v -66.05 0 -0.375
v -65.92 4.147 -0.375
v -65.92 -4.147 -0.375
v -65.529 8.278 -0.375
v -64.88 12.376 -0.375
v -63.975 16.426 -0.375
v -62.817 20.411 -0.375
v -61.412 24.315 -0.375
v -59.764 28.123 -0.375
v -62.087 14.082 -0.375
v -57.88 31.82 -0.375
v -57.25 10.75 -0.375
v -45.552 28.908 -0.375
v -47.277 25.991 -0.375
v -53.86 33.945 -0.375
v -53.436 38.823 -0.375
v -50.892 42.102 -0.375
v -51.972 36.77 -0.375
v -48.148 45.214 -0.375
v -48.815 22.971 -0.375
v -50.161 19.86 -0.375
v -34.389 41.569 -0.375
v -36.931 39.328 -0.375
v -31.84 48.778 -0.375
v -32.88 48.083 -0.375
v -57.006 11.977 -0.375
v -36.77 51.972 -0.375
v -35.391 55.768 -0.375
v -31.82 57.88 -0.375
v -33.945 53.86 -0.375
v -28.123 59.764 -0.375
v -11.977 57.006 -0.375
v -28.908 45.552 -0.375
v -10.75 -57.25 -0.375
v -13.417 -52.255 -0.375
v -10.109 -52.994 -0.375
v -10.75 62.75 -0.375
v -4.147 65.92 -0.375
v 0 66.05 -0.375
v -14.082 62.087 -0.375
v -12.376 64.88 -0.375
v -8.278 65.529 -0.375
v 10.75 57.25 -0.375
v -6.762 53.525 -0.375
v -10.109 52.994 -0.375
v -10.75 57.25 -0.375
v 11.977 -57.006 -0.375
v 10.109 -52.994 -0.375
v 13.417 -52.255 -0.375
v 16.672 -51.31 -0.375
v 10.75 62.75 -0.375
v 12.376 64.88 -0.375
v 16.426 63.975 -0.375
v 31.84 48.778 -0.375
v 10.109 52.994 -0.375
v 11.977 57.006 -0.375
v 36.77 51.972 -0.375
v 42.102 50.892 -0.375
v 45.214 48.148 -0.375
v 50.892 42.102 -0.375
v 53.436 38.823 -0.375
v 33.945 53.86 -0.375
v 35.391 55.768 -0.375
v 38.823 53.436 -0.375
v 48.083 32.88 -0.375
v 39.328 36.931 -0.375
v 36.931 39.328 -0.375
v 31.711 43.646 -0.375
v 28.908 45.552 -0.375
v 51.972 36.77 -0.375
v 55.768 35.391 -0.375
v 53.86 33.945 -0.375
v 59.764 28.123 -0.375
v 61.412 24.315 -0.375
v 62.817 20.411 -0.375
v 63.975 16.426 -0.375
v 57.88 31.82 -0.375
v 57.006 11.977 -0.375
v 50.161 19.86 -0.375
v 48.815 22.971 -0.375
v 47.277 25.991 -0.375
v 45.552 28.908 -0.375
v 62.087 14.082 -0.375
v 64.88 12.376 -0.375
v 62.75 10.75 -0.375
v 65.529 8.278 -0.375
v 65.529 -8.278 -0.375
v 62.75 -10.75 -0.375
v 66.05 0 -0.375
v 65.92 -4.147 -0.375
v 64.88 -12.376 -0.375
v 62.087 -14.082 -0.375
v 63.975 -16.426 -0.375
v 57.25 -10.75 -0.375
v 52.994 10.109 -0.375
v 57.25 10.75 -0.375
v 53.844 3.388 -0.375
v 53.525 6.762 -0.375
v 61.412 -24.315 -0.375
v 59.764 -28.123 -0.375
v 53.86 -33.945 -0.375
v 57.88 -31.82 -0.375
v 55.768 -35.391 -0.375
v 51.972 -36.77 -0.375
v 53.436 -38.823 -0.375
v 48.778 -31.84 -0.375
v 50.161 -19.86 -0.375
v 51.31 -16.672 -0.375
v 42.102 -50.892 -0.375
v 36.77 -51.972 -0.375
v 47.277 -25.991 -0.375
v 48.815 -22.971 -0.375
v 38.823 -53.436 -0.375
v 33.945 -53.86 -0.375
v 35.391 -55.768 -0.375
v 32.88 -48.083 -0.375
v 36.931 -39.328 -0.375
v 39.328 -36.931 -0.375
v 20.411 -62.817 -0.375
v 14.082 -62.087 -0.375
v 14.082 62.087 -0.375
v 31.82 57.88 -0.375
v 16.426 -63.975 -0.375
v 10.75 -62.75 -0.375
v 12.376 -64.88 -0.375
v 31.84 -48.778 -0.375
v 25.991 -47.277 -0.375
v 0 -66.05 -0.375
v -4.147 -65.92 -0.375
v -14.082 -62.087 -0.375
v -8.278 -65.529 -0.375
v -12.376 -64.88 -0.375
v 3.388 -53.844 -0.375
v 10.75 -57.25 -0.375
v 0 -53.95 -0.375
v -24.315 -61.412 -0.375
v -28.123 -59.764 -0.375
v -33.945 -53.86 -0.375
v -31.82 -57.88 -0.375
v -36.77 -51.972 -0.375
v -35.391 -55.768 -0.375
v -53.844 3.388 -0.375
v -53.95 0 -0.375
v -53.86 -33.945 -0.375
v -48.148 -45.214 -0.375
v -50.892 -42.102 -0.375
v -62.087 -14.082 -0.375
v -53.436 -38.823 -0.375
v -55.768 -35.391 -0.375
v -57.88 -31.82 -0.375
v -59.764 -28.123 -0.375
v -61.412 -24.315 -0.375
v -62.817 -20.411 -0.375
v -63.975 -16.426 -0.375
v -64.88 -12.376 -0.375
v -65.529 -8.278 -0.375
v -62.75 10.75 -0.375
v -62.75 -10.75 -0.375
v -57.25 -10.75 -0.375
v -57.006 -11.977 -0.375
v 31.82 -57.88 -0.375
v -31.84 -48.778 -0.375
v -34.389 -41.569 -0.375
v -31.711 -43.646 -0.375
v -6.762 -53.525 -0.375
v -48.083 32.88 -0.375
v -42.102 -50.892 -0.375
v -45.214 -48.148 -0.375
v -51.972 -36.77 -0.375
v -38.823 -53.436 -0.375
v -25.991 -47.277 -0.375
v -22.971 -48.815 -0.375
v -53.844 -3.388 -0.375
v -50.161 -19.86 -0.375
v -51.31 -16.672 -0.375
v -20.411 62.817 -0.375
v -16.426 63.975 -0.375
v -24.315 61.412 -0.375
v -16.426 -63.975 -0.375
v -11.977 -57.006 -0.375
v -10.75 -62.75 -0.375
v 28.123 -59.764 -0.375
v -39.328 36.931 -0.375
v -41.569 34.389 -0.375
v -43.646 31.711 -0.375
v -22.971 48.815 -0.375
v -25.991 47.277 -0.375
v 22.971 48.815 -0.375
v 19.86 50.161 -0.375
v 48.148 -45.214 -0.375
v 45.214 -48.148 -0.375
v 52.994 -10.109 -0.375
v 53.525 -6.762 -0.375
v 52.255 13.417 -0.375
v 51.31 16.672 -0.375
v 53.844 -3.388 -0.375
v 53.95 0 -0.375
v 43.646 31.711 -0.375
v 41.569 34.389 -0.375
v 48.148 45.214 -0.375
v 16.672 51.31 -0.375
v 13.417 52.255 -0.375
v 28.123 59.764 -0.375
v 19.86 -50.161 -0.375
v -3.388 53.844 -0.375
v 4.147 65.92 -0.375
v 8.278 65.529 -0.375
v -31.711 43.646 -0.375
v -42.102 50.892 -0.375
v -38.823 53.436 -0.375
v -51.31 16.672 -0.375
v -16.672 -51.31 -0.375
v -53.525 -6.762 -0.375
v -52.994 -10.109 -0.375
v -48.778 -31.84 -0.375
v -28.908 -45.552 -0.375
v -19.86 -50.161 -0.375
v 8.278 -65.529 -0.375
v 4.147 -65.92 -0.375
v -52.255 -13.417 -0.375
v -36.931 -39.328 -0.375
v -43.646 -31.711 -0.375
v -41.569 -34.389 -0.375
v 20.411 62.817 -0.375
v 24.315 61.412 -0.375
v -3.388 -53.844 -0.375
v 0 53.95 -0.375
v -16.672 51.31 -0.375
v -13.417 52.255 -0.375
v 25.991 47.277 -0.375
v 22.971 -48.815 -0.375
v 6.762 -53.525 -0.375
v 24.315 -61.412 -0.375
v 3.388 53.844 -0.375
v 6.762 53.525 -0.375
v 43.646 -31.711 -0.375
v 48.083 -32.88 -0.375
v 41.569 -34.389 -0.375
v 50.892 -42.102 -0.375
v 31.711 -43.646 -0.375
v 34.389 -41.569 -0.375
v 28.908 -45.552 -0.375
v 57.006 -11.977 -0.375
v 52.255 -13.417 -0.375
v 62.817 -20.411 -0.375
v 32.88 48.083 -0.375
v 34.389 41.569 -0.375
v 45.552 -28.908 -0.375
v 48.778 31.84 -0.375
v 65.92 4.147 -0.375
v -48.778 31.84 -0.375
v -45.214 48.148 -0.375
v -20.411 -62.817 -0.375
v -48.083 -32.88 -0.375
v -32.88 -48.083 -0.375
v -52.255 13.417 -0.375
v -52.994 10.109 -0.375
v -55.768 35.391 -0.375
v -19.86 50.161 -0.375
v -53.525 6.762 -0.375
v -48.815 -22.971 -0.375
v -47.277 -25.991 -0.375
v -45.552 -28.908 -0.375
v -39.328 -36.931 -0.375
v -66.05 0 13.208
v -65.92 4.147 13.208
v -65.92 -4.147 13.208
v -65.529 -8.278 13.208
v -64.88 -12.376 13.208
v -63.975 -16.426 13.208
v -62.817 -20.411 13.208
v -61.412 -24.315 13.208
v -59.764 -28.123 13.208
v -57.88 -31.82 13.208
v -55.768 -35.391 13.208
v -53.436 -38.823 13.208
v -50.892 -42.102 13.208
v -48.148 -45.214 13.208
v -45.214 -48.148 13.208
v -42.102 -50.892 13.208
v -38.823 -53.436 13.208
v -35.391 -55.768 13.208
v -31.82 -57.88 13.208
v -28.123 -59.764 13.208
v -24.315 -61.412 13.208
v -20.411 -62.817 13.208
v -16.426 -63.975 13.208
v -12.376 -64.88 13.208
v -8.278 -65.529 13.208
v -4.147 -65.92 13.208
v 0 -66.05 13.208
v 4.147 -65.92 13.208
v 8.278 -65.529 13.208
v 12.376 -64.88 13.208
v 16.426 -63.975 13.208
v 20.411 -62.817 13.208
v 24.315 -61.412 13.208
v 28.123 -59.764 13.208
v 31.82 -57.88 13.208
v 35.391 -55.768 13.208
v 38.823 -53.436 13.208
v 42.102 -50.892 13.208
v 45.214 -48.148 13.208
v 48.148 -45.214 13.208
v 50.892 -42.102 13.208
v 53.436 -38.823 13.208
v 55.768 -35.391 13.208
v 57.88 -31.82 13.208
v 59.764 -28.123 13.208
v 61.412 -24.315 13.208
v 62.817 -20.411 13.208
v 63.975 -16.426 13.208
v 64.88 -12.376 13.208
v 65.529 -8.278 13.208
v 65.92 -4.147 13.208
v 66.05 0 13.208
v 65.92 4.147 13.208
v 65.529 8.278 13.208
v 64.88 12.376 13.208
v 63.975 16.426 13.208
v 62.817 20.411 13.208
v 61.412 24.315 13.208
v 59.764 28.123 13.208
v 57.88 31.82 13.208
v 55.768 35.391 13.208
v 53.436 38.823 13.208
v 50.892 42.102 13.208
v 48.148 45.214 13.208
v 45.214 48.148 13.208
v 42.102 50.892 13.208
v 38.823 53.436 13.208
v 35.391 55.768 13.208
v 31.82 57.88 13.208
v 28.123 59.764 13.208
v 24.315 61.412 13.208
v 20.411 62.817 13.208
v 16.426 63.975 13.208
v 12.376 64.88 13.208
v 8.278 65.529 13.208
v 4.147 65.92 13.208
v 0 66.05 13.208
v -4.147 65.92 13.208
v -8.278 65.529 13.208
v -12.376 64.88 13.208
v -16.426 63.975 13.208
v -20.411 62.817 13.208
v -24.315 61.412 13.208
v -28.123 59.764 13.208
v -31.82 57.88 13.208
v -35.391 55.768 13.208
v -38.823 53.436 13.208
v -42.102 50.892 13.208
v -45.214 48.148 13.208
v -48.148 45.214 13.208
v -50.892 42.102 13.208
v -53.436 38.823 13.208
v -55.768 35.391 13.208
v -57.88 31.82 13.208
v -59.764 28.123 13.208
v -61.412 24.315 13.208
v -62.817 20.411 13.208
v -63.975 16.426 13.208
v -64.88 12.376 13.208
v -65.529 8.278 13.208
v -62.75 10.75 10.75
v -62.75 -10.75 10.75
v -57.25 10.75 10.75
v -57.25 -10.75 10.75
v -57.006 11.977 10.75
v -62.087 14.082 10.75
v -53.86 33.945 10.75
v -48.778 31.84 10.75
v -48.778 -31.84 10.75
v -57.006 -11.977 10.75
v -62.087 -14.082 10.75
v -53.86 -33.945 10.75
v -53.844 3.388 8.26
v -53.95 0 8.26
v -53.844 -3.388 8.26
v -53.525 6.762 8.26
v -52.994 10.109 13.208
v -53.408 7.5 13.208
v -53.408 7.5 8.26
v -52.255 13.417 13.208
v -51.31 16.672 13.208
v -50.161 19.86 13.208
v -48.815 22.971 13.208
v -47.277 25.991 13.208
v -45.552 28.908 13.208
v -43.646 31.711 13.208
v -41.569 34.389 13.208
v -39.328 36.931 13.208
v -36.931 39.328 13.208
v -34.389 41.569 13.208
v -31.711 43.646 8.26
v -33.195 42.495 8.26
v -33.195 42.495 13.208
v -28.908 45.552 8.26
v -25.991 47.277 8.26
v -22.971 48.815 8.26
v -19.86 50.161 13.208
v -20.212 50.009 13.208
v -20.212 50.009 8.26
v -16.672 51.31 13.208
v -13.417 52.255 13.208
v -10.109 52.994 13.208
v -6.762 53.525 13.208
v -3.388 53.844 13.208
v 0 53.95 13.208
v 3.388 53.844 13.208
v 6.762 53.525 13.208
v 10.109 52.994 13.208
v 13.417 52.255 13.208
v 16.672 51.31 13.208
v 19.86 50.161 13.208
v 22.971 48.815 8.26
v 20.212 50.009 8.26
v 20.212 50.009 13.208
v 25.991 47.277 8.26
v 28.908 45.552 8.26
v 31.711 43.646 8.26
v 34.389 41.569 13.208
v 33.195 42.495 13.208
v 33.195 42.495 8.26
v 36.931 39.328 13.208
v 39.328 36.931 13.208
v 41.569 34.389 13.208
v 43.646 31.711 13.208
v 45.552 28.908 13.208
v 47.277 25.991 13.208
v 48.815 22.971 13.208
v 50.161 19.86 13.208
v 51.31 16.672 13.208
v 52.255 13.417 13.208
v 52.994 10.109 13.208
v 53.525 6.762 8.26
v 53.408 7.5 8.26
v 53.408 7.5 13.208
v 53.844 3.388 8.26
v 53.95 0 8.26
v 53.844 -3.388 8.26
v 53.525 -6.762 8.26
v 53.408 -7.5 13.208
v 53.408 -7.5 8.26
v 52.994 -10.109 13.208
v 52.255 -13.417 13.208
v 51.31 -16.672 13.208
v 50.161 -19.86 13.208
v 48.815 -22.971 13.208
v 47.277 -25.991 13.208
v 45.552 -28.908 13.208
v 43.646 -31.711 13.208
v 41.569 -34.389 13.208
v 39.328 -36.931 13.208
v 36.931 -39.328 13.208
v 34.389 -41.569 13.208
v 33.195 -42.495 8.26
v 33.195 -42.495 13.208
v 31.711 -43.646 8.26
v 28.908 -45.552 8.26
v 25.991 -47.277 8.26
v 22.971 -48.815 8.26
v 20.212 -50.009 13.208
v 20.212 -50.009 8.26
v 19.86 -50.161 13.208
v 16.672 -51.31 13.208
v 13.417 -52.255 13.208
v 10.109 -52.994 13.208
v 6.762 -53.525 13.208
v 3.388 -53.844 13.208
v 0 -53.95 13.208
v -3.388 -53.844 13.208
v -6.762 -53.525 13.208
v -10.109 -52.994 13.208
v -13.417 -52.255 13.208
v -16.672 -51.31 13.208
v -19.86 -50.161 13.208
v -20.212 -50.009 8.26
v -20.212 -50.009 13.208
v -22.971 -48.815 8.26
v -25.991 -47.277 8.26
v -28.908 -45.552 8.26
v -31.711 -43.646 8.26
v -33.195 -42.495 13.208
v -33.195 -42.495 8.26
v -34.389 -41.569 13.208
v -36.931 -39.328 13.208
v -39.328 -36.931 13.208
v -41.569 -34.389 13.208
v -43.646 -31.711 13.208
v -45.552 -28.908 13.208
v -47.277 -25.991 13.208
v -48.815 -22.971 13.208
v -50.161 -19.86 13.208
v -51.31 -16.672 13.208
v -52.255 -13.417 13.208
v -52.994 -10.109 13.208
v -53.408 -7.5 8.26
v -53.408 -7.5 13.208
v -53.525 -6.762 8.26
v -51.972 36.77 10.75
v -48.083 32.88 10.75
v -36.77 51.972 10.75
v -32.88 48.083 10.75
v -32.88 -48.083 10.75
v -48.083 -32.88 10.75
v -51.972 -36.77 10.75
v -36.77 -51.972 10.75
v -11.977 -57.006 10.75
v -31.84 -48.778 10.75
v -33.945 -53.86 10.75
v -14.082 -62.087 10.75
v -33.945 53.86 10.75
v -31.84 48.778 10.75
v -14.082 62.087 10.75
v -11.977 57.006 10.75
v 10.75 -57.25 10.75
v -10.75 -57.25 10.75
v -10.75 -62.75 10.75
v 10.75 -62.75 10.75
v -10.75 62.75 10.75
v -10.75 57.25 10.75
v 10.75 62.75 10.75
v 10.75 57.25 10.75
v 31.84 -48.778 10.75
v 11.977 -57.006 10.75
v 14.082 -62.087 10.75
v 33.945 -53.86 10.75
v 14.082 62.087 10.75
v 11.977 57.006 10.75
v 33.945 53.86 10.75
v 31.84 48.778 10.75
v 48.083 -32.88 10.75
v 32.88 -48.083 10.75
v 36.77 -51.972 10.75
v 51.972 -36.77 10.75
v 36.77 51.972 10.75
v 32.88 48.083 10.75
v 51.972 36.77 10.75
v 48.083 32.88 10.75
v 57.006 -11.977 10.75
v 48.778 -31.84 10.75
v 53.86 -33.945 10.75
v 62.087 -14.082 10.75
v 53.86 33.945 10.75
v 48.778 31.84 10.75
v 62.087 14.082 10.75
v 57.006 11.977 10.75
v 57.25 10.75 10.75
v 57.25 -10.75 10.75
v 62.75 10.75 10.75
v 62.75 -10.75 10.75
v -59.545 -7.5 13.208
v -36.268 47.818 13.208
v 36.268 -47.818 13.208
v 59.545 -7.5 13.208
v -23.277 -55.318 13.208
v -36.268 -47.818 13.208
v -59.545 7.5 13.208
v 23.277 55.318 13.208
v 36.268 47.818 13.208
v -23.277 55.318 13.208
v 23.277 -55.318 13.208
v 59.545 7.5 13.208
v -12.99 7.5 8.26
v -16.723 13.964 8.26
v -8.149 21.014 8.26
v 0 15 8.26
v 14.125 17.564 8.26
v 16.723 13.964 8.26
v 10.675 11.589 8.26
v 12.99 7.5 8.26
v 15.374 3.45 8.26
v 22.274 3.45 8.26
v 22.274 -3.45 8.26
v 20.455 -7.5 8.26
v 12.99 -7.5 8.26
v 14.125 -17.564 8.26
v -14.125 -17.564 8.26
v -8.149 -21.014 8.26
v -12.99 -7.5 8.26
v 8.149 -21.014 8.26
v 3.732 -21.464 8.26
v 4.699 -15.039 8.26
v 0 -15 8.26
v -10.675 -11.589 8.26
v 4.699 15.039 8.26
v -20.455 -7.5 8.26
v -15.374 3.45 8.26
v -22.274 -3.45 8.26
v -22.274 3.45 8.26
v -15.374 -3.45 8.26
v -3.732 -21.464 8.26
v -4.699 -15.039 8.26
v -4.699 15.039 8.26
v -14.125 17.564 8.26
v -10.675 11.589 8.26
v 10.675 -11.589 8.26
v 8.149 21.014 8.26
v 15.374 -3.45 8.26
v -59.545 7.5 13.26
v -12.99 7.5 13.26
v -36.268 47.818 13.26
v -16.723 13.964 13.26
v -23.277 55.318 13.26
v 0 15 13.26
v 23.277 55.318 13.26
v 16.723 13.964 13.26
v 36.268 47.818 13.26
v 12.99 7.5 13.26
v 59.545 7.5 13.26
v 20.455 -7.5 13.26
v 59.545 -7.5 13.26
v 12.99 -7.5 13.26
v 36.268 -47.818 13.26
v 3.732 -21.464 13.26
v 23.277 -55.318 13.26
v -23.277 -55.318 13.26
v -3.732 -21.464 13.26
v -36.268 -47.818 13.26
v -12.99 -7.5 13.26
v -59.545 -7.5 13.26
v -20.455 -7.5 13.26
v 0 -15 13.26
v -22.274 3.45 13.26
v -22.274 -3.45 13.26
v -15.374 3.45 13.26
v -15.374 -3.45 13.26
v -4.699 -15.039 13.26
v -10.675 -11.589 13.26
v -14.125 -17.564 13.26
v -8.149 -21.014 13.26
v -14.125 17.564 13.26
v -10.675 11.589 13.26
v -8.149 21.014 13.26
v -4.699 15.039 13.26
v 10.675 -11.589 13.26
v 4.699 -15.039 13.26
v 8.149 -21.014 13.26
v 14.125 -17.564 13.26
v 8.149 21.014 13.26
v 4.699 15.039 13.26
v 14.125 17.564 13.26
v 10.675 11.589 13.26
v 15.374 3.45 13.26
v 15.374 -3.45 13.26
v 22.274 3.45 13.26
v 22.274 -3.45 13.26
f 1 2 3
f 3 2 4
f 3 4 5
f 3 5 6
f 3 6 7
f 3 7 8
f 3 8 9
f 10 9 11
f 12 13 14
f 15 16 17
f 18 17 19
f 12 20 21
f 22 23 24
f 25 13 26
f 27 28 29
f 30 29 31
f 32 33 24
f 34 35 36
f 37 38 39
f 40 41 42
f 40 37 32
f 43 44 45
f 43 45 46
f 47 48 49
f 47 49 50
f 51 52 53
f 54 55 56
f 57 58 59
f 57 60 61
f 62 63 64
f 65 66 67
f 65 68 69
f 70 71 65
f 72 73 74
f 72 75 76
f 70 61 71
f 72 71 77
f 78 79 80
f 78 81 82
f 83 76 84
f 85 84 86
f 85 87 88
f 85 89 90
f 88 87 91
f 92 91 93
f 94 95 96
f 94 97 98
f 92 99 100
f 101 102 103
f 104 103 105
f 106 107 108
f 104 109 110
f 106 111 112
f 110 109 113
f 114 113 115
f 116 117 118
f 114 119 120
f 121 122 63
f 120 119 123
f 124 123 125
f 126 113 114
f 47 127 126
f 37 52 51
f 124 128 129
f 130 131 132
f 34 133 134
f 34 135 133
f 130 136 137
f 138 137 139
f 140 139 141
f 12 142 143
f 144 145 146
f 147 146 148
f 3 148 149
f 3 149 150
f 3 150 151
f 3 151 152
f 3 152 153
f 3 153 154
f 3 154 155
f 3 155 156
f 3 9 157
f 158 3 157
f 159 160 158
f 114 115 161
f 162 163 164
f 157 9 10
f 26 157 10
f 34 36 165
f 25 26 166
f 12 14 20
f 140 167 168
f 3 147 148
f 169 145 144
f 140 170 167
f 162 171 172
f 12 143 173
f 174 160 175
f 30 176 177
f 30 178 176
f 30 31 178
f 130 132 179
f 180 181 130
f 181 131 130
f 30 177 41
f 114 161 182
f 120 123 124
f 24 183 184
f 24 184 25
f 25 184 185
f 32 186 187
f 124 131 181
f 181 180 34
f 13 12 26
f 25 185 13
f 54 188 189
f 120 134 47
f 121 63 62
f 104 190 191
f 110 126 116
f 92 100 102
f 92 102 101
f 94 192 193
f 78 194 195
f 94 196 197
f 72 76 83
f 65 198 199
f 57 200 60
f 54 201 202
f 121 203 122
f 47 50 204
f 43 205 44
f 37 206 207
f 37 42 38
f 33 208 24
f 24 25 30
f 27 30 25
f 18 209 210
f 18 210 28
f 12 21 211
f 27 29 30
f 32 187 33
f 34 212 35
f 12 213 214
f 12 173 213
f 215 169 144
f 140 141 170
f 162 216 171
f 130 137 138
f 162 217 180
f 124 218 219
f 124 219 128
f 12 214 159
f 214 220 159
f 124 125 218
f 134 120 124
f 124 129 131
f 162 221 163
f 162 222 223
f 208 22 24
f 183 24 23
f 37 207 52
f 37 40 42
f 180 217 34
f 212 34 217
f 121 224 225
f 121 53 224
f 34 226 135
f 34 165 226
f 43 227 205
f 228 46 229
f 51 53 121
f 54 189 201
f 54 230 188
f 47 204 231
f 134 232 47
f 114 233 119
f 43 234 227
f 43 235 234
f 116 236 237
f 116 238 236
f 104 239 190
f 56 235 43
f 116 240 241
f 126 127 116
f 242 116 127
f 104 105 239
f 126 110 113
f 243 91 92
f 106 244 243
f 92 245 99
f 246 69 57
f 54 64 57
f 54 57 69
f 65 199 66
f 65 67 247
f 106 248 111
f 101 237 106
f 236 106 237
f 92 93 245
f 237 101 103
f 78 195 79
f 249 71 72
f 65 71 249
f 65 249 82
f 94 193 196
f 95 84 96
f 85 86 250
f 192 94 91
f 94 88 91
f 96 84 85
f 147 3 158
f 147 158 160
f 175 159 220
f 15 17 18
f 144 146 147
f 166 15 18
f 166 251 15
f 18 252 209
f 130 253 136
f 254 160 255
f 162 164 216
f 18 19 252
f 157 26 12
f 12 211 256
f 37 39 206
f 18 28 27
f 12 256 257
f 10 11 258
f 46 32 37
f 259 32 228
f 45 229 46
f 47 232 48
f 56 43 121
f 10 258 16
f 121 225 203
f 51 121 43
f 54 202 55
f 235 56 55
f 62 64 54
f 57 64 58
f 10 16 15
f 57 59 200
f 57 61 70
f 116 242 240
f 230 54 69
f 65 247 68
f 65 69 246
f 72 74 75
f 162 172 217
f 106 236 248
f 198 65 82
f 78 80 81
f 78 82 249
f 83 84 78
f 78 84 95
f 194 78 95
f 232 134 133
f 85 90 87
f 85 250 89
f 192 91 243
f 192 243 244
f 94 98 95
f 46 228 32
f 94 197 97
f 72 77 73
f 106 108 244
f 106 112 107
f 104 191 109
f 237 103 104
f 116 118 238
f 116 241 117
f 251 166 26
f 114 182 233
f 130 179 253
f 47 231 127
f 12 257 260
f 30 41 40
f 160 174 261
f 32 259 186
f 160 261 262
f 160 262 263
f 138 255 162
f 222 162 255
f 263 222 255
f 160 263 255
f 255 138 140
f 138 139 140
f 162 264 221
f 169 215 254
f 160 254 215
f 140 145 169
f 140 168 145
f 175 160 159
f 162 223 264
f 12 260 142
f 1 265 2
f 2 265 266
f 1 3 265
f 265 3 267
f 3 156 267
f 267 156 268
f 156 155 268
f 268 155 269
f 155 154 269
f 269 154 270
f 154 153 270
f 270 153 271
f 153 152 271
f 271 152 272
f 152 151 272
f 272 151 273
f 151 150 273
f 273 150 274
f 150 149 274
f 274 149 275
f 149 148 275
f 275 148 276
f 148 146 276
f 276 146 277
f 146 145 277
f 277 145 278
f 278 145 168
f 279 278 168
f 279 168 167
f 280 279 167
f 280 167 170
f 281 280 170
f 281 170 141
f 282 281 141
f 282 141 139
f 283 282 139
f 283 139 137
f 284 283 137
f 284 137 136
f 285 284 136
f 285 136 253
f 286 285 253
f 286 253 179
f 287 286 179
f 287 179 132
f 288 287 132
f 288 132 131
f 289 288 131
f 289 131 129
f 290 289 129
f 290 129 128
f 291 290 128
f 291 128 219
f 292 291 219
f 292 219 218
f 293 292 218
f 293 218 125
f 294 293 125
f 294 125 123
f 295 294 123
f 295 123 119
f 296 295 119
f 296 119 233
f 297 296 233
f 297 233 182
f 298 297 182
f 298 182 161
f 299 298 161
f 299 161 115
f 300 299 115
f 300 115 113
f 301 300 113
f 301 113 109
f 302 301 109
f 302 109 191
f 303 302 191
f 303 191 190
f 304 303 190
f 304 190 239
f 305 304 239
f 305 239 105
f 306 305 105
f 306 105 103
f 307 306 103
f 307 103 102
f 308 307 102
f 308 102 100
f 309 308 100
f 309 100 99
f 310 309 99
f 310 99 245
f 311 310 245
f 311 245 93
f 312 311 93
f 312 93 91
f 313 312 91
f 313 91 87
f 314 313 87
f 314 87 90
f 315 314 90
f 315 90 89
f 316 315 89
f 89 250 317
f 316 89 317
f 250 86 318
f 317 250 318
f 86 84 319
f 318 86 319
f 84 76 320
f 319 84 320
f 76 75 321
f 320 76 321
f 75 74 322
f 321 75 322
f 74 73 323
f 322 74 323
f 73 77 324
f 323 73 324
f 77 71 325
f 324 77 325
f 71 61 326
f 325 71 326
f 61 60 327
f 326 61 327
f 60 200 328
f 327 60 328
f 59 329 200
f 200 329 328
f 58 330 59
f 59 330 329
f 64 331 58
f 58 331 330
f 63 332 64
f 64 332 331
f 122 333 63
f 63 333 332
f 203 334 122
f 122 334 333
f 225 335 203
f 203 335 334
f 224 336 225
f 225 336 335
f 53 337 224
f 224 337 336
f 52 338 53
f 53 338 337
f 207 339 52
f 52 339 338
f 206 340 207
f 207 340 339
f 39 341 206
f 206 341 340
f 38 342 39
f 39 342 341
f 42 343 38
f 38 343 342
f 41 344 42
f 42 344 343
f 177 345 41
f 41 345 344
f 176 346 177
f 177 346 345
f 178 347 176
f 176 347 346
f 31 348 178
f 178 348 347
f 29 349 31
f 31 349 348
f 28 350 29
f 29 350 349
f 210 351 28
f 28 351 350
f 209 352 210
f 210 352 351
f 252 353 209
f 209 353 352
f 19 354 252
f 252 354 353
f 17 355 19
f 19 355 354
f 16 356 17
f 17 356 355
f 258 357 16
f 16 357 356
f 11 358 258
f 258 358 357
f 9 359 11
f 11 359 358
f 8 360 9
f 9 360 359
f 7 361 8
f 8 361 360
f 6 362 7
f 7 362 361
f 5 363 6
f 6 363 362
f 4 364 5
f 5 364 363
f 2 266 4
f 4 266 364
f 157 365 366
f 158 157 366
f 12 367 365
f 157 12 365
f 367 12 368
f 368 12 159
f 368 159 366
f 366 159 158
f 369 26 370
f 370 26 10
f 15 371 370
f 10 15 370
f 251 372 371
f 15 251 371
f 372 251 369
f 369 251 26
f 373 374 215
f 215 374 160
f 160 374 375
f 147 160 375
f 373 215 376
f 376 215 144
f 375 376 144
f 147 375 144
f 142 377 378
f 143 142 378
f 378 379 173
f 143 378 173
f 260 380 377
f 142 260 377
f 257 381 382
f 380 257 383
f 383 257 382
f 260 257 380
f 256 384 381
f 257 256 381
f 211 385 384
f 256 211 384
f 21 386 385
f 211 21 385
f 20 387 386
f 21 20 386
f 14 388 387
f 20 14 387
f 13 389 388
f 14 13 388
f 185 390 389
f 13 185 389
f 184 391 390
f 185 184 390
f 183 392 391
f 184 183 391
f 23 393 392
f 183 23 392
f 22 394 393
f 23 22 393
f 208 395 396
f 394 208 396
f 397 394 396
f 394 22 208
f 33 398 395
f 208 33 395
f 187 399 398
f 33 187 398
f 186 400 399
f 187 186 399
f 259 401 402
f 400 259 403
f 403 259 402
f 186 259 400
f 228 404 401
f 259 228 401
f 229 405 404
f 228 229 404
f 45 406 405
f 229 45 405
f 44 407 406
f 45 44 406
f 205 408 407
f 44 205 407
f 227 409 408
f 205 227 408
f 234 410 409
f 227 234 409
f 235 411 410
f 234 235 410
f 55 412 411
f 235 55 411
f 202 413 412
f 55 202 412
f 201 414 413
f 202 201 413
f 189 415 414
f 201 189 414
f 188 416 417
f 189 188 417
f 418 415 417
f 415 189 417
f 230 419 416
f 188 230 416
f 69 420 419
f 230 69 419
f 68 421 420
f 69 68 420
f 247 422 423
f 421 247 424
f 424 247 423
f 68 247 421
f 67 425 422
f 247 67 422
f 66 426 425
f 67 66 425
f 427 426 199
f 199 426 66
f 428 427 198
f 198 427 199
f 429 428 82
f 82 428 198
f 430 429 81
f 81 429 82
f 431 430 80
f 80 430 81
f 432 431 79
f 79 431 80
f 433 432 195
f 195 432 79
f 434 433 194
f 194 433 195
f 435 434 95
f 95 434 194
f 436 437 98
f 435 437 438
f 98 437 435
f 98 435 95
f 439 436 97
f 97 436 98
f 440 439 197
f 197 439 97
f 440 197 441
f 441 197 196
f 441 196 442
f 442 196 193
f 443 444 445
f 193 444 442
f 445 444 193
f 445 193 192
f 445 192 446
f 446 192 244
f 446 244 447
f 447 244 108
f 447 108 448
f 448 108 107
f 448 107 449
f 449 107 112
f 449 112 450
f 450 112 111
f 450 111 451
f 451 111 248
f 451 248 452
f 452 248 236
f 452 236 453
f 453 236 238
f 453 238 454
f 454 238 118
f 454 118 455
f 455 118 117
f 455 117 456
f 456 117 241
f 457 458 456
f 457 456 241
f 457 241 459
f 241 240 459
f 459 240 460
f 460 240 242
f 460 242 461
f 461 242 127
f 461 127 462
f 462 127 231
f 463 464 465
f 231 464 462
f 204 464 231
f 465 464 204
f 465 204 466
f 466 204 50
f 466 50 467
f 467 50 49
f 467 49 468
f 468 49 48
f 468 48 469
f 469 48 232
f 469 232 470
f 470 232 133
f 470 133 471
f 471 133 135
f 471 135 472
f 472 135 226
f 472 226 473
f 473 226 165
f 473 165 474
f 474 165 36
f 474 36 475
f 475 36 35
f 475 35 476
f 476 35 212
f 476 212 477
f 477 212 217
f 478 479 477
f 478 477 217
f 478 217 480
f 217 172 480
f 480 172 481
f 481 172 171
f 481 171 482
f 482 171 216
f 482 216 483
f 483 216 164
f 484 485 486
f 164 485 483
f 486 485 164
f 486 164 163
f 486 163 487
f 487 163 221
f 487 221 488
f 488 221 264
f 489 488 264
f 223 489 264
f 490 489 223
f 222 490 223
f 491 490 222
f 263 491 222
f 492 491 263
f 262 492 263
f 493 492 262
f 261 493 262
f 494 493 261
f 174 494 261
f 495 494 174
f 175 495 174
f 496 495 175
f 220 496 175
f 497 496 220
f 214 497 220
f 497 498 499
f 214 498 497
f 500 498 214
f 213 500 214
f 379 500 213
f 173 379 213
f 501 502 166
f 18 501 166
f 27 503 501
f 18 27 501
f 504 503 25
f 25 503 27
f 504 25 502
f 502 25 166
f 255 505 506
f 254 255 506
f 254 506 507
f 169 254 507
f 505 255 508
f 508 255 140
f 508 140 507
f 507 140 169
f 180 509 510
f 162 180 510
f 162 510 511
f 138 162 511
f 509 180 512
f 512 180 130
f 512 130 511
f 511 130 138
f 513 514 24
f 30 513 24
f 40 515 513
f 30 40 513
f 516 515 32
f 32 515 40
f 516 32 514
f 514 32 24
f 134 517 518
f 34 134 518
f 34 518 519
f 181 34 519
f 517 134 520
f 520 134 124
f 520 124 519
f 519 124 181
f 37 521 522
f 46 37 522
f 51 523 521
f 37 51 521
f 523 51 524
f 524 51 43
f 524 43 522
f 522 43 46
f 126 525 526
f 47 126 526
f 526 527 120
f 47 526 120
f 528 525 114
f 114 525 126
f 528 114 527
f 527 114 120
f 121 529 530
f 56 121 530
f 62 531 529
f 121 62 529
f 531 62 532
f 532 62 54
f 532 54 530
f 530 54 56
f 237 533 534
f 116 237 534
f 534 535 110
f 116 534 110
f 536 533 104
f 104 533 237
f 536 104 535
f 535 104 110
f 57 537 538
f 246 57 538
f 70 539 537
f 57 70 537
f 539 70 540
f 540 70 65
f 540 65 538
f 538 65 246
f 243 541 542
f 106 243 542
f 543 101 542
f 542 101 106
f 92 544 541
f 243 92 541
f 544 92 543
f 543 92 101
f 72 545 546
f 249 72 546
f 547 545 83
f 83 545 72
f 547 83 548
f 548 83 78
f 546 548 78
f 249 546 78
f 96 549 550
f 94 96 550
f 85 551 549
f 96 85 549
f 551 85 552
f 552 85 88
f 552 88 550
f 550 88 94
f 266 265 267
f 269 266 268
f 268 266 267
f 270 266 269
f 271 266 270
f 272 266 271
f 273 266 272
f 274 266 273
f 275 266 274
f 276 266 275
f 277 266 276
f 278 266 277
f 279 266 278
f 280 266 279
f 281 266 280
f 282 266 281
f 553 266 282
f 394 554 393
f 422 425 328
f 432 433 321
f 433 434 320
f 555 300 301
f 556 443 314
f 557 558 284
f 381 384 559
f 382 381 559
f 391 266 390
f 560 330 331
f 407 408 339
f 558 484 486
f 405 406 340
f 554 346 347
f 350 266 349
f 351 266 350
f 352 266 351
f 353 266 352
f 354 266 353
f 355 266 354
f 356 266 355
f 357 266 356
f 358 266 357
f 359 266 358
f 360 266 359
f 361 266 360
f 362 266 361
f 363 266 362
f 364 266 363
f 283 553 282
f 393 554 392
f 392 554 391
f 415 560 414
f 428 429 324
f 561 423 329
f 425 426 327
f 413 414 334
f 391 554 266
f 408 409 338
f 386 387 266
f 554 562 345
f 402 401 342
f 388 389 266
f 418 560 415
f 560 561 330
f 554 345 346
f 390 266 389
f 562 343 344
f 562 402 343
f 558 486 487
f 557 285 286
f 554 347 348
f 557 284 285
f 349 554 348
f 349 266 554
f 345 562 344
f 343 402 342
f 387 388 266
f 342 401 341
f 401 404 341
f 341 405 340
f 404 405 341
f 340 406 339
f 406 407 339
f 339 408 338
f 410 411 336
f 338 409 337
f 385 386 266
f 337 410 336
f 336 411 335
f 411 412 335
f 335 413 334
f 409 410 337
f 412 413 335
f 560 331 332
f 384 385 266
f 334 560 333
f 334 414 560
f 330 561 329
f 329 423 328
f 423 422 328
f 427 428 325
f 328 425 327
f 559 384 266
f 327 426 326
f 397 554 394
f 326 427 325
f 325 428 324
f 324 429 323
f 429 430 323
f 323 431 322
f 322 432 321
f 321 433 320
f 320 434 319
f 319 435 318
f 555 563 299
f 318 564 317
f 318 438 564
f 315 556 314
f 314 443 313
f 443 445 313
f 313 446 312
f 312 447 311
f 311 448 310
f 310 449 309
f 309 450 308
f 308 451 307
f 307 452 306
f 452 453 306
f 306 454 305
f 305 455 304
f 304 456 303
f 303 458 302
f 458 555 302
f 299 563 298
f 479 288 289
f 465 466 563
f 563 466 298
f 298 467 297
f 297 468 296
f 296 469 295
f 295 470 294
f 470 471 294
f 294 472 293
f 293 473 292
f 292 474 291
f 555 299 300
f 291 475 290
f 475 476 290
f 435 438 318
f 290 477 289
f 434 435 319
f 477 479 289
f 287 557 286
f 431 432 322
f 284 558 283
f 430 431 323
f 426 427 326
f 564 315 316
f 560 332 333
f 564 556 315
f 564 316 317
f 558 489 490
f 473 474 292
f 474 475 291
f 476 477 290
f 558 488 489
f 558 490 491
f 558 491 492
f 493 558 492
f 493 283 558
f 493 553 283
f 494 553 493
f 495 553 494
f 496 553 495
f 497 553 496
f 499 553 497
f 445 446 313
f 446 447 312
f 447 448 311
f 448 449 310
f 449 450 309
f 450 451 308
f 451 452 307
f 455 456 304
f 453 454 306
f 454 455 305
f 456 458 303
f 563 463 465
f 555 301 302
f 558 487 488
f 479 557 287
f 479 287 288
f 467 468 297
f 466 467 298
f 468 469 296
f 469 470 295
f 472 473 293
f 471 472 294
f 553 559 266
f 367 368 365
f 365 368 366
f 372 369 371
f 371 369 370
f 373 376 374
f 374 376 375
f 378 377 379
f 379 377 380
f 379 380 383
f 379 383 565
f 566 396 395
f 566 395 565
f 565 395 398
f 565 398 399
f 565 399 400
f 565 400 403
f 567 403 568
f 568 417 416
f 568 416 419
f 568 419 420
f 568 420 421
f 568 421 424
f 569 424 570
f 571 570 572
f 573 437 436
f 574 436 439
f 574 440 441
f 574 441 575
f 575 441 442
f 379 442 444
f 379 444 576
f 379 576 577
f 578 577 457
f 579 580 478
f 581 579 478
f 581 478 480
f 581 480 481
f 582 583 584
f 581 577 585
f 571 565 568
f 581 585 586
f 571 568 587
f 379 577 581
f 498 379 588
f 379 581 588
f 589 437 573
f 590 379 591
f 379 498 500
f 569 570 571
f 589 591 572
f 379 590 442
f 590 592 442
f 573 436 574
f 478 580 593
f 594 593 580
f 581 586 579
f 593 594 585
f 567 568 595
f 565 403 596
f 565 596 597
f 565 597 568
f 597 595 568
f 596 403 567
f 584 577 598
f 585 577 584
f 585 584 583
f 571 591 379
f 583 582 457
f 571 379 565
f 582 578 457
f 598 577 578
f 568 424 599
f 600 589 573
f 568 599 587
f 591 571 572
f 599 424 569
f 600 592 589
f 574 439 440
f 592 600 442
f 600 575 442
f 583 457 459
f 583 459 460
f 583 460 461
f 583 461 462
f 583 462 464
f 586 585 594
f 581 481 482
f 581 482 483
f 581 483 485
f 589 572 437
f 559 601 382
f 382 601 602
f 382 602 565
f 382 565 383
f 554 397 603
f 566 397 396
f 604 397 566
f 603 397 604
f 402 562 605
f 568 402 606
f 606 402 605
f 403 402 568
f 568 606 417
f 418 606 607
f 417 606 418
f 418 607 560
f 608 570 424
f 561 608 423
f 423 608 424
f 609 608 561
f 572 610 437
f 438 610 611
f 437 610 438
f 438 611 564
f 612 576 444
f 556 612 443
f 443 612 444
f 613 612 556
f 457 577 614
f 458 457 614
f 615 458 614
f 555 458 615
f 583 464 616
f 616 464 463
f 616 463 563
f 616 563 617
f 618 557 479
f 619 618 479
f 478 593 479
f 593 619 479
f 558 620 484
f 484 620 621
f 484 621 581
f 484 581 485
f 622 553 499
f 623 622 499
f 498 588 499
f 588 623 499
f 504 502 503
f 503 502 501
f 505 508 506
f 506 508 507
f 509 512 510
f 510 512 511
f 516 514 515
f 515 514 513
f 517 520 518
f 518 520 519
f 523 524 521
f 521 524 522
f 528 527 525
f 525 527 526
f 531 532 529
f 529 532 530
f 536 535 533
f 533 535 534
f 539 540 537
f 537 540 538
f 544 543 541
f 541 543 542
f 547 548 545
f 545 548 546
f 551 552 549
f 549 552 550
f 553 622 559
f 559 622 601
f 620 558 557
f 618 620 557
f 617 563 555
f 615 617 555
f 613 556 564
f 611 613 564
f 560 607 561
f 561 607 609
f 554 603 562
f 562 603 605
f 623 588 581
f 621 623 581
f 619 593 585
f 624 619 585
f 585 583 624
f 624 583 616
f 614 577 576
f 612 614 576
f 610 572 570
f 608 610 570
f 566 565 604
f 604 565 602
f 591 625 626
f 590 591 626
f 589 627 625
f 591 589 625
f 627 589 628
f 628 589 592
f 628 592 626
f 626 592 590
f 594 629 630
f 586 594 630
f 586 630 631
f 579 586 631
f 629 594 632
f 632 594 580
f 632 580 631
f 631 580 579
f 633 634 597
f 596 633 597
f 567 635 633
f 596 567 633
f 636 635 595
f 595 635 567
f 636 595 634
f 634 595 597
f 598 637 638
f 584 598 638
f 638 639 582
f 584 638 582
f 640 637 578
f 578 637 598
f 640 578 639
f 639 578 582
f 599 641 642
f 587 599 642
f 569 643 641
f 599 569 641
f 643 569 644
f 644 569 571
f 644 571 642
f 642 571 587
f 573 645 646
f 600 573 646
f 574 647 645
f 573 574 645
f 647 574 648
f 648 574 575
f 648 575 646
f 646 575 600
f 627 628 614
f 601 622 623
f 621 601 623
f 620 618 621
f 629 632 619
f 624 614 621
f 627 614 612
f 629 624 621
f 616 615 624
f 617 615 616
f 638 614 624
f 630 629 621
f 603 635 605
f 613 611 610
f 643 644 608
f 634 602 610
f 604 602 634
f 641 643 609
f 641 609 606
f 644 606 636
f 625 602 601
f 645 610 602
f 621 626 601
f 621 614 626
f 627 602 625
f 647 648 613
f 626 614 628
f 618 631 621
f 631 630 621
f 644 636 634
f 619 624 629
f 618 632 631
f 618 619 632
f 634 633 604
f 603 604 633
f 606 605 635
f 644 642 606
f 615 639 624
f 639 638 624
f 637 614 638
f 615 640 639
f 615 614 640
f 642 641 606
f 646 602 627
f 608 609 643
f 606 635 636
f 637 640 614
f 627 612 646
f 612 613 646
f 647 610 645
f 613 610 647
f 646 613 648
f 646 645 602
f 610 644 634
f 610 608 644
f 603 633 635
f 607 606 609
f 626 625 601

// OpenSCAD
// file: 3dprinter.scad
//BioDeploy SCAD file = 3dprinter.scad


//choose the max specs for your 3d printer
//here we use a replicator2x specs

x_print_max = 25*10;
y_print_max = 15.2*10;
z_print_max = 15.5*10;

//don't forget *10 to put in centimeters
// file: generator_rotor_adapter_hdd.scad
//===============================================//
//===============================================//
//BioDeploy SCAD file = generator_rotor_adapter_hdd.scad//
//                 Start File                    //
//===============================================//
//===============================================//
//-----------------------------------------------//

//===============================================//
//                   variables                   //
//===============================================//
include <generator_variables.scad>
//===============================================//
//               Calls for use                   //
//===============================================//
//use <generator_logo.scad>
//===============================================//
//                    Trees                      //
//===============================================//

module arm() {
cube([6,6,60], center=true);
}


module arm_rotation_adapter() {
translate([diam_adapter_max/1.7,0,30])arm();}


module arm_rotation(){
for(i = [0:(nbarm-1)]) {
rotate([0,0,(60)*i])arm_rotation_adapter();
}}

//
module armbase() {
cube([3,12,25], center=true);
}


module armbase_rotation_adapter() {
translate([diam_adapter_max/1.7,0,12.5])armbase();}


module armbase_rotation(){
for(i = [0:(nbarm-1)]) {
rotate([0,0,(60)*i])armbase_rotation_adapter();
}}
//

module centralringattach() {
difference()
{
color("Blue",1)translate([0,0,0])cylinder(h_adapter,diam_adapter_max/2,diam_adapter_max/2,center=true);
translate([0,0,0])cylinder(h_adapter+pad,diam_adapter_min/2,diam_adapter_min/2,center=true);}
}


module centralringattachext() {
difference()
{
color("Red",1)translate([0,0,+pad/2])cylinder(h_adapter+pad,45/2,45/2,center=true);
translate([0,0,+pad/2])cylinder(h_adapter+pad*2,diam_adapter_max/2,diam_adapter_max/2,center=true);}
}
module generator_rotor_adapter_hdd_a() {
union() {
centralringattach();
centralringattachext();
arm_rotation();
armbase_rotation();

}
}






module armscrewdif() {

cylinder(20,1.25,1.25,$fn=24,center=true);
}


module armscrewdif_rotation_adapter() {
translate([diam_adapter_max/1.7,0,50+pad])armscrewdif();}


module armscrewdif_rotation(){
for(i = [0:(nbarm-1)]) {
rotate([0,0,(60)*i])armscrewdif_rotation_adapter();
}}

module generator_rotor_adapter_hdd() {
difference() {
generator_rotor_adapter_hdd_a();
armscrewdif_rotation();}}


generator_rotor_adapter_hdd();

//-----------------------------------------------//
//===============================================//
//===============================================//
//BioDeploy SCAD file = generator_rotor_adapter_hdd.scad//
//                   End  File                   //
//===============================================//
//===============================================//
// file: generator_magnet2.scad
//===============================================//
//===============================================//
//  BioDeploy SCAD file = generator_magnet2.scad  //
//                 Start File                    //
//===============================================//
//===============================================//
//-----------------------------------------------//

//===============================================//
//                   variables                   //
//===============================================//
include <generator_variables.scad>
//===============================================//
//               Calls for use                   //
//===============================================//
//use <generator_logo.scad>
//===============================================//
//                    Trees                      //
//===============================================//
module magnet2()
{color("Rose",1)cylinder(z_magnet2,diam_magnet2/2,diam_magnet2/2,$fn=smooth_rotor, center=true);}
magnet2();

//%cube([x_h2o_cont_ext,y_h2o_cont_ext,z_h2o_cont_ext], center=true);
//-----------------------------------------------//
//===============================================//
//===============================================//
//  BioDeploy SCAD file = generator_magnet2.scad  //
//                   End  File                   //
//===============================================//
//===============================================//
// file: generator_magnet.scad
//===============================================//
//===============================================//
//  BioDeploy SCAD file = generator_magnet.scad  //
//                 Start File                    //
//===============================================//
//===============================================//
//-----------------------------------------------//

//===============================================//
//                   variables                   //
//===============================================//
include <generator_variables.scad>
//===============================================//
//               Calls for use                   //
//===============================================//
//use <generator_logo.scad>
//===============================================//
//                    Trees                      //
//===============================================//
module magnet()
{cube([x_magnet,y_magnet,z_magnet], center = true);}
magnet();

//%cube([x_h2o_cont_ext,y_h2o_cont_ext,z_h2o_cont_ext], center=true);
//-----------------------------------------------//
//===============================================//
//===============================================//
//  BioDeploy SCAD file = generator_magnet.scad  //
//                   End  File                   //
//===============================================//
//===============================================//
// file: generator_variables.scad
//===============================================//
//===============================================//
// BioDeploy SCAD file = generator_variables.scad//
//                 Start File                    //
//===============================================//
//===============================================//
//-----------------------------------------------//
include <3dprinter.scad>
//===============================================//
//                   variables                   //
//===============================================//
//===============================================//
pad = 0.1; //padding
//choose the spec for your generator
//===============================================//
//                    magnets1                   //
//===============================================//
//Volume :
x_magnet = 5.5;
y_magnet = 21.5;
z_magnet = 21.5;
//Number of magnets on the rotor :
nbmagnetsonrotor = 16;
rotor_ext_max = 60;
//===============================================//
//                    magnets2                   //
//===============================================//
//Volume :
diam_magnet2 = 35;
z_magnet2 = 5;
//Number of magnets on the rotor :
nbmagnetsonrotor2 = 6;
//===============================================//
//                      rotor                    //
//===============================================//
smooth_rotor = 100;
smooth_bobine = 100;
z_rotor_int = 20;
//===============================================//
//                  adapter_rotor                //
//===============================================//
diam_adapter_max = 32 ;
diam_adapter_min = 25.15 ;
h_adapter = 7;
h_adapter_box = 12;
nbarm = 6;
//===============================================//
//                    Bobine1                    //
//===============================================//
r_bobine_ext_max = y_magnet/2;
r_bobine_ext_min = 4.5;
r_bobine_int = 3.5;

x_bobine = 30;
p_bobine_ext = 1;

r_bobine2_ext_min = 3.4;
r_bobine2_int = 2.5;

wire_in = 1;
wire_out = 1;


//===============================================//
//                    Protector                  //
//===============================================//

r_bobine_protector_ext_max = y_magnet/2 + 1.5;
gap_bobine_protector = (r_bobine_protector_ext_max - r_bobine_ext_max)/2;


x_bobine_protector=x_bobine+1.5;

smooth_protector = 100;

//===============================================//
//                    Socle1                     //
//===============================================//

r_socle_int = 0;
r_socle_ext = 0;
position_bobine_in = 0;
position_bobine_out = 0;
connector_socle_female =0;
connector_socle_male =0;
space_marge=3;

//-----------------------------------------------//
//===============================================//
//===============================================//
// BioDeploy SCAD file = generator_variables.scad//
//                   End  File                   //
//===============================================//
//===============================================//
// main file
//===============================================//
//===============================================//
// BioDeploy SCAD file = generator_rotor_top.scad//
//                 Start File                    //
//===============================================//
//===============================================//
//-----------------------------------------------//

//===============================================//
//                   variables                   //
//===============================================//
include <generator_variables.scad>
//===============================================//
//               Calls for use                   //
//===============================================//
use <generator_magnet.scad>
use <generator_magnet2.scad>
use <generator_rotor_adapter_hdd.scad>
//use <generator_logo.scad>
//===============================================//
//                    Trees                      //
//===============================================//


module magnet_rotation_adapter() {
translate([rotor_ext_max,0,0])magnet();}


module magnet_rotation(){
for(i = [0:(nbmagnetsonrotor-1)]) {
rotate([0,0,(360/nbmagnetsonrotor)*i])magnet_rotation_adapter();
}}




module magnetmaintaintop() {
difference()
{
color("Green",1)translate([0,0,+z_rotor_int/2-z_magnet/6])cylinder(z_rotor_int/2+z_magnet/6,rotor_ext_max+x_magnet*1.1,rotor_ext_max+x_magnet*1.1,$fn=smooth_rotor, center=true);
translate([0,0,+z_rotor_int/2-z_magnet/6+pad])cylinder(z_rotor_int+z_magnet/6,rotor_ext_max-x_magnet*1.1,rotor_ext_max-x_magnet*1.1,$fn=smooth_rotor, center=true);
}}


module arm() {
cube([6.9,6.9,60], center=true);
}


module arm_rotation_adapter() {
translate([diam_adapter_max/1.7,0,30])arm();}


module arm_rotation(){
for(i = [0:(nbarm-1)]) {
rotate([0,0,(60)*i])arm_rotation_adapter();
}}

//!
module armtop() {
translate([-20,0,z_rotor_int/2-z_magnet/6+z_rotor_int/4.605])cube([80,15,z_rotor_int/4], center=true);
}

module armtop_rotation_adapter() {
translate([(diam_adapter_max-diam_adapter_min)+diam_adapter_min*1.3,0,0])armtop();}

module armtop_rotation(){
for(i = [0:(nbarm-1)]) {
rotate([0,0,(60)*i])armtop_rotation_adapter();
}}

//armtop_rotation();


module armtopdif() {
cube([10,10,50], center=true);
}

module armtopdif_rotation_adapter() {
translate([(diam_adapter_max-diam_adapter_min)+diam_adapter_min*1.3,0,0])armtopdif();}

module armtopdif_rotation(){
for(i = [0:(nbarm-1)]) {
rotate([0,0,(60)*i])armtopdif_rotation_adapter();
}}



module fulldif() {
difference()
{
armtop_rotation();
arm_rotation();
}}



module fullunion() {
union() {
magnetmaintaintop();
fulldif();
}}

module generator_rotor_top() {
difference()
{
fullunion();
magnet_rotation();
}}

generator_rotor_top();




//-----------------------------------------------//
//===============================================//
//===============================================//
// BioDeploy SCAD file = generator_rotor_top.scad//
//                   End  File                   //
//===============================================//
//===============================================//
